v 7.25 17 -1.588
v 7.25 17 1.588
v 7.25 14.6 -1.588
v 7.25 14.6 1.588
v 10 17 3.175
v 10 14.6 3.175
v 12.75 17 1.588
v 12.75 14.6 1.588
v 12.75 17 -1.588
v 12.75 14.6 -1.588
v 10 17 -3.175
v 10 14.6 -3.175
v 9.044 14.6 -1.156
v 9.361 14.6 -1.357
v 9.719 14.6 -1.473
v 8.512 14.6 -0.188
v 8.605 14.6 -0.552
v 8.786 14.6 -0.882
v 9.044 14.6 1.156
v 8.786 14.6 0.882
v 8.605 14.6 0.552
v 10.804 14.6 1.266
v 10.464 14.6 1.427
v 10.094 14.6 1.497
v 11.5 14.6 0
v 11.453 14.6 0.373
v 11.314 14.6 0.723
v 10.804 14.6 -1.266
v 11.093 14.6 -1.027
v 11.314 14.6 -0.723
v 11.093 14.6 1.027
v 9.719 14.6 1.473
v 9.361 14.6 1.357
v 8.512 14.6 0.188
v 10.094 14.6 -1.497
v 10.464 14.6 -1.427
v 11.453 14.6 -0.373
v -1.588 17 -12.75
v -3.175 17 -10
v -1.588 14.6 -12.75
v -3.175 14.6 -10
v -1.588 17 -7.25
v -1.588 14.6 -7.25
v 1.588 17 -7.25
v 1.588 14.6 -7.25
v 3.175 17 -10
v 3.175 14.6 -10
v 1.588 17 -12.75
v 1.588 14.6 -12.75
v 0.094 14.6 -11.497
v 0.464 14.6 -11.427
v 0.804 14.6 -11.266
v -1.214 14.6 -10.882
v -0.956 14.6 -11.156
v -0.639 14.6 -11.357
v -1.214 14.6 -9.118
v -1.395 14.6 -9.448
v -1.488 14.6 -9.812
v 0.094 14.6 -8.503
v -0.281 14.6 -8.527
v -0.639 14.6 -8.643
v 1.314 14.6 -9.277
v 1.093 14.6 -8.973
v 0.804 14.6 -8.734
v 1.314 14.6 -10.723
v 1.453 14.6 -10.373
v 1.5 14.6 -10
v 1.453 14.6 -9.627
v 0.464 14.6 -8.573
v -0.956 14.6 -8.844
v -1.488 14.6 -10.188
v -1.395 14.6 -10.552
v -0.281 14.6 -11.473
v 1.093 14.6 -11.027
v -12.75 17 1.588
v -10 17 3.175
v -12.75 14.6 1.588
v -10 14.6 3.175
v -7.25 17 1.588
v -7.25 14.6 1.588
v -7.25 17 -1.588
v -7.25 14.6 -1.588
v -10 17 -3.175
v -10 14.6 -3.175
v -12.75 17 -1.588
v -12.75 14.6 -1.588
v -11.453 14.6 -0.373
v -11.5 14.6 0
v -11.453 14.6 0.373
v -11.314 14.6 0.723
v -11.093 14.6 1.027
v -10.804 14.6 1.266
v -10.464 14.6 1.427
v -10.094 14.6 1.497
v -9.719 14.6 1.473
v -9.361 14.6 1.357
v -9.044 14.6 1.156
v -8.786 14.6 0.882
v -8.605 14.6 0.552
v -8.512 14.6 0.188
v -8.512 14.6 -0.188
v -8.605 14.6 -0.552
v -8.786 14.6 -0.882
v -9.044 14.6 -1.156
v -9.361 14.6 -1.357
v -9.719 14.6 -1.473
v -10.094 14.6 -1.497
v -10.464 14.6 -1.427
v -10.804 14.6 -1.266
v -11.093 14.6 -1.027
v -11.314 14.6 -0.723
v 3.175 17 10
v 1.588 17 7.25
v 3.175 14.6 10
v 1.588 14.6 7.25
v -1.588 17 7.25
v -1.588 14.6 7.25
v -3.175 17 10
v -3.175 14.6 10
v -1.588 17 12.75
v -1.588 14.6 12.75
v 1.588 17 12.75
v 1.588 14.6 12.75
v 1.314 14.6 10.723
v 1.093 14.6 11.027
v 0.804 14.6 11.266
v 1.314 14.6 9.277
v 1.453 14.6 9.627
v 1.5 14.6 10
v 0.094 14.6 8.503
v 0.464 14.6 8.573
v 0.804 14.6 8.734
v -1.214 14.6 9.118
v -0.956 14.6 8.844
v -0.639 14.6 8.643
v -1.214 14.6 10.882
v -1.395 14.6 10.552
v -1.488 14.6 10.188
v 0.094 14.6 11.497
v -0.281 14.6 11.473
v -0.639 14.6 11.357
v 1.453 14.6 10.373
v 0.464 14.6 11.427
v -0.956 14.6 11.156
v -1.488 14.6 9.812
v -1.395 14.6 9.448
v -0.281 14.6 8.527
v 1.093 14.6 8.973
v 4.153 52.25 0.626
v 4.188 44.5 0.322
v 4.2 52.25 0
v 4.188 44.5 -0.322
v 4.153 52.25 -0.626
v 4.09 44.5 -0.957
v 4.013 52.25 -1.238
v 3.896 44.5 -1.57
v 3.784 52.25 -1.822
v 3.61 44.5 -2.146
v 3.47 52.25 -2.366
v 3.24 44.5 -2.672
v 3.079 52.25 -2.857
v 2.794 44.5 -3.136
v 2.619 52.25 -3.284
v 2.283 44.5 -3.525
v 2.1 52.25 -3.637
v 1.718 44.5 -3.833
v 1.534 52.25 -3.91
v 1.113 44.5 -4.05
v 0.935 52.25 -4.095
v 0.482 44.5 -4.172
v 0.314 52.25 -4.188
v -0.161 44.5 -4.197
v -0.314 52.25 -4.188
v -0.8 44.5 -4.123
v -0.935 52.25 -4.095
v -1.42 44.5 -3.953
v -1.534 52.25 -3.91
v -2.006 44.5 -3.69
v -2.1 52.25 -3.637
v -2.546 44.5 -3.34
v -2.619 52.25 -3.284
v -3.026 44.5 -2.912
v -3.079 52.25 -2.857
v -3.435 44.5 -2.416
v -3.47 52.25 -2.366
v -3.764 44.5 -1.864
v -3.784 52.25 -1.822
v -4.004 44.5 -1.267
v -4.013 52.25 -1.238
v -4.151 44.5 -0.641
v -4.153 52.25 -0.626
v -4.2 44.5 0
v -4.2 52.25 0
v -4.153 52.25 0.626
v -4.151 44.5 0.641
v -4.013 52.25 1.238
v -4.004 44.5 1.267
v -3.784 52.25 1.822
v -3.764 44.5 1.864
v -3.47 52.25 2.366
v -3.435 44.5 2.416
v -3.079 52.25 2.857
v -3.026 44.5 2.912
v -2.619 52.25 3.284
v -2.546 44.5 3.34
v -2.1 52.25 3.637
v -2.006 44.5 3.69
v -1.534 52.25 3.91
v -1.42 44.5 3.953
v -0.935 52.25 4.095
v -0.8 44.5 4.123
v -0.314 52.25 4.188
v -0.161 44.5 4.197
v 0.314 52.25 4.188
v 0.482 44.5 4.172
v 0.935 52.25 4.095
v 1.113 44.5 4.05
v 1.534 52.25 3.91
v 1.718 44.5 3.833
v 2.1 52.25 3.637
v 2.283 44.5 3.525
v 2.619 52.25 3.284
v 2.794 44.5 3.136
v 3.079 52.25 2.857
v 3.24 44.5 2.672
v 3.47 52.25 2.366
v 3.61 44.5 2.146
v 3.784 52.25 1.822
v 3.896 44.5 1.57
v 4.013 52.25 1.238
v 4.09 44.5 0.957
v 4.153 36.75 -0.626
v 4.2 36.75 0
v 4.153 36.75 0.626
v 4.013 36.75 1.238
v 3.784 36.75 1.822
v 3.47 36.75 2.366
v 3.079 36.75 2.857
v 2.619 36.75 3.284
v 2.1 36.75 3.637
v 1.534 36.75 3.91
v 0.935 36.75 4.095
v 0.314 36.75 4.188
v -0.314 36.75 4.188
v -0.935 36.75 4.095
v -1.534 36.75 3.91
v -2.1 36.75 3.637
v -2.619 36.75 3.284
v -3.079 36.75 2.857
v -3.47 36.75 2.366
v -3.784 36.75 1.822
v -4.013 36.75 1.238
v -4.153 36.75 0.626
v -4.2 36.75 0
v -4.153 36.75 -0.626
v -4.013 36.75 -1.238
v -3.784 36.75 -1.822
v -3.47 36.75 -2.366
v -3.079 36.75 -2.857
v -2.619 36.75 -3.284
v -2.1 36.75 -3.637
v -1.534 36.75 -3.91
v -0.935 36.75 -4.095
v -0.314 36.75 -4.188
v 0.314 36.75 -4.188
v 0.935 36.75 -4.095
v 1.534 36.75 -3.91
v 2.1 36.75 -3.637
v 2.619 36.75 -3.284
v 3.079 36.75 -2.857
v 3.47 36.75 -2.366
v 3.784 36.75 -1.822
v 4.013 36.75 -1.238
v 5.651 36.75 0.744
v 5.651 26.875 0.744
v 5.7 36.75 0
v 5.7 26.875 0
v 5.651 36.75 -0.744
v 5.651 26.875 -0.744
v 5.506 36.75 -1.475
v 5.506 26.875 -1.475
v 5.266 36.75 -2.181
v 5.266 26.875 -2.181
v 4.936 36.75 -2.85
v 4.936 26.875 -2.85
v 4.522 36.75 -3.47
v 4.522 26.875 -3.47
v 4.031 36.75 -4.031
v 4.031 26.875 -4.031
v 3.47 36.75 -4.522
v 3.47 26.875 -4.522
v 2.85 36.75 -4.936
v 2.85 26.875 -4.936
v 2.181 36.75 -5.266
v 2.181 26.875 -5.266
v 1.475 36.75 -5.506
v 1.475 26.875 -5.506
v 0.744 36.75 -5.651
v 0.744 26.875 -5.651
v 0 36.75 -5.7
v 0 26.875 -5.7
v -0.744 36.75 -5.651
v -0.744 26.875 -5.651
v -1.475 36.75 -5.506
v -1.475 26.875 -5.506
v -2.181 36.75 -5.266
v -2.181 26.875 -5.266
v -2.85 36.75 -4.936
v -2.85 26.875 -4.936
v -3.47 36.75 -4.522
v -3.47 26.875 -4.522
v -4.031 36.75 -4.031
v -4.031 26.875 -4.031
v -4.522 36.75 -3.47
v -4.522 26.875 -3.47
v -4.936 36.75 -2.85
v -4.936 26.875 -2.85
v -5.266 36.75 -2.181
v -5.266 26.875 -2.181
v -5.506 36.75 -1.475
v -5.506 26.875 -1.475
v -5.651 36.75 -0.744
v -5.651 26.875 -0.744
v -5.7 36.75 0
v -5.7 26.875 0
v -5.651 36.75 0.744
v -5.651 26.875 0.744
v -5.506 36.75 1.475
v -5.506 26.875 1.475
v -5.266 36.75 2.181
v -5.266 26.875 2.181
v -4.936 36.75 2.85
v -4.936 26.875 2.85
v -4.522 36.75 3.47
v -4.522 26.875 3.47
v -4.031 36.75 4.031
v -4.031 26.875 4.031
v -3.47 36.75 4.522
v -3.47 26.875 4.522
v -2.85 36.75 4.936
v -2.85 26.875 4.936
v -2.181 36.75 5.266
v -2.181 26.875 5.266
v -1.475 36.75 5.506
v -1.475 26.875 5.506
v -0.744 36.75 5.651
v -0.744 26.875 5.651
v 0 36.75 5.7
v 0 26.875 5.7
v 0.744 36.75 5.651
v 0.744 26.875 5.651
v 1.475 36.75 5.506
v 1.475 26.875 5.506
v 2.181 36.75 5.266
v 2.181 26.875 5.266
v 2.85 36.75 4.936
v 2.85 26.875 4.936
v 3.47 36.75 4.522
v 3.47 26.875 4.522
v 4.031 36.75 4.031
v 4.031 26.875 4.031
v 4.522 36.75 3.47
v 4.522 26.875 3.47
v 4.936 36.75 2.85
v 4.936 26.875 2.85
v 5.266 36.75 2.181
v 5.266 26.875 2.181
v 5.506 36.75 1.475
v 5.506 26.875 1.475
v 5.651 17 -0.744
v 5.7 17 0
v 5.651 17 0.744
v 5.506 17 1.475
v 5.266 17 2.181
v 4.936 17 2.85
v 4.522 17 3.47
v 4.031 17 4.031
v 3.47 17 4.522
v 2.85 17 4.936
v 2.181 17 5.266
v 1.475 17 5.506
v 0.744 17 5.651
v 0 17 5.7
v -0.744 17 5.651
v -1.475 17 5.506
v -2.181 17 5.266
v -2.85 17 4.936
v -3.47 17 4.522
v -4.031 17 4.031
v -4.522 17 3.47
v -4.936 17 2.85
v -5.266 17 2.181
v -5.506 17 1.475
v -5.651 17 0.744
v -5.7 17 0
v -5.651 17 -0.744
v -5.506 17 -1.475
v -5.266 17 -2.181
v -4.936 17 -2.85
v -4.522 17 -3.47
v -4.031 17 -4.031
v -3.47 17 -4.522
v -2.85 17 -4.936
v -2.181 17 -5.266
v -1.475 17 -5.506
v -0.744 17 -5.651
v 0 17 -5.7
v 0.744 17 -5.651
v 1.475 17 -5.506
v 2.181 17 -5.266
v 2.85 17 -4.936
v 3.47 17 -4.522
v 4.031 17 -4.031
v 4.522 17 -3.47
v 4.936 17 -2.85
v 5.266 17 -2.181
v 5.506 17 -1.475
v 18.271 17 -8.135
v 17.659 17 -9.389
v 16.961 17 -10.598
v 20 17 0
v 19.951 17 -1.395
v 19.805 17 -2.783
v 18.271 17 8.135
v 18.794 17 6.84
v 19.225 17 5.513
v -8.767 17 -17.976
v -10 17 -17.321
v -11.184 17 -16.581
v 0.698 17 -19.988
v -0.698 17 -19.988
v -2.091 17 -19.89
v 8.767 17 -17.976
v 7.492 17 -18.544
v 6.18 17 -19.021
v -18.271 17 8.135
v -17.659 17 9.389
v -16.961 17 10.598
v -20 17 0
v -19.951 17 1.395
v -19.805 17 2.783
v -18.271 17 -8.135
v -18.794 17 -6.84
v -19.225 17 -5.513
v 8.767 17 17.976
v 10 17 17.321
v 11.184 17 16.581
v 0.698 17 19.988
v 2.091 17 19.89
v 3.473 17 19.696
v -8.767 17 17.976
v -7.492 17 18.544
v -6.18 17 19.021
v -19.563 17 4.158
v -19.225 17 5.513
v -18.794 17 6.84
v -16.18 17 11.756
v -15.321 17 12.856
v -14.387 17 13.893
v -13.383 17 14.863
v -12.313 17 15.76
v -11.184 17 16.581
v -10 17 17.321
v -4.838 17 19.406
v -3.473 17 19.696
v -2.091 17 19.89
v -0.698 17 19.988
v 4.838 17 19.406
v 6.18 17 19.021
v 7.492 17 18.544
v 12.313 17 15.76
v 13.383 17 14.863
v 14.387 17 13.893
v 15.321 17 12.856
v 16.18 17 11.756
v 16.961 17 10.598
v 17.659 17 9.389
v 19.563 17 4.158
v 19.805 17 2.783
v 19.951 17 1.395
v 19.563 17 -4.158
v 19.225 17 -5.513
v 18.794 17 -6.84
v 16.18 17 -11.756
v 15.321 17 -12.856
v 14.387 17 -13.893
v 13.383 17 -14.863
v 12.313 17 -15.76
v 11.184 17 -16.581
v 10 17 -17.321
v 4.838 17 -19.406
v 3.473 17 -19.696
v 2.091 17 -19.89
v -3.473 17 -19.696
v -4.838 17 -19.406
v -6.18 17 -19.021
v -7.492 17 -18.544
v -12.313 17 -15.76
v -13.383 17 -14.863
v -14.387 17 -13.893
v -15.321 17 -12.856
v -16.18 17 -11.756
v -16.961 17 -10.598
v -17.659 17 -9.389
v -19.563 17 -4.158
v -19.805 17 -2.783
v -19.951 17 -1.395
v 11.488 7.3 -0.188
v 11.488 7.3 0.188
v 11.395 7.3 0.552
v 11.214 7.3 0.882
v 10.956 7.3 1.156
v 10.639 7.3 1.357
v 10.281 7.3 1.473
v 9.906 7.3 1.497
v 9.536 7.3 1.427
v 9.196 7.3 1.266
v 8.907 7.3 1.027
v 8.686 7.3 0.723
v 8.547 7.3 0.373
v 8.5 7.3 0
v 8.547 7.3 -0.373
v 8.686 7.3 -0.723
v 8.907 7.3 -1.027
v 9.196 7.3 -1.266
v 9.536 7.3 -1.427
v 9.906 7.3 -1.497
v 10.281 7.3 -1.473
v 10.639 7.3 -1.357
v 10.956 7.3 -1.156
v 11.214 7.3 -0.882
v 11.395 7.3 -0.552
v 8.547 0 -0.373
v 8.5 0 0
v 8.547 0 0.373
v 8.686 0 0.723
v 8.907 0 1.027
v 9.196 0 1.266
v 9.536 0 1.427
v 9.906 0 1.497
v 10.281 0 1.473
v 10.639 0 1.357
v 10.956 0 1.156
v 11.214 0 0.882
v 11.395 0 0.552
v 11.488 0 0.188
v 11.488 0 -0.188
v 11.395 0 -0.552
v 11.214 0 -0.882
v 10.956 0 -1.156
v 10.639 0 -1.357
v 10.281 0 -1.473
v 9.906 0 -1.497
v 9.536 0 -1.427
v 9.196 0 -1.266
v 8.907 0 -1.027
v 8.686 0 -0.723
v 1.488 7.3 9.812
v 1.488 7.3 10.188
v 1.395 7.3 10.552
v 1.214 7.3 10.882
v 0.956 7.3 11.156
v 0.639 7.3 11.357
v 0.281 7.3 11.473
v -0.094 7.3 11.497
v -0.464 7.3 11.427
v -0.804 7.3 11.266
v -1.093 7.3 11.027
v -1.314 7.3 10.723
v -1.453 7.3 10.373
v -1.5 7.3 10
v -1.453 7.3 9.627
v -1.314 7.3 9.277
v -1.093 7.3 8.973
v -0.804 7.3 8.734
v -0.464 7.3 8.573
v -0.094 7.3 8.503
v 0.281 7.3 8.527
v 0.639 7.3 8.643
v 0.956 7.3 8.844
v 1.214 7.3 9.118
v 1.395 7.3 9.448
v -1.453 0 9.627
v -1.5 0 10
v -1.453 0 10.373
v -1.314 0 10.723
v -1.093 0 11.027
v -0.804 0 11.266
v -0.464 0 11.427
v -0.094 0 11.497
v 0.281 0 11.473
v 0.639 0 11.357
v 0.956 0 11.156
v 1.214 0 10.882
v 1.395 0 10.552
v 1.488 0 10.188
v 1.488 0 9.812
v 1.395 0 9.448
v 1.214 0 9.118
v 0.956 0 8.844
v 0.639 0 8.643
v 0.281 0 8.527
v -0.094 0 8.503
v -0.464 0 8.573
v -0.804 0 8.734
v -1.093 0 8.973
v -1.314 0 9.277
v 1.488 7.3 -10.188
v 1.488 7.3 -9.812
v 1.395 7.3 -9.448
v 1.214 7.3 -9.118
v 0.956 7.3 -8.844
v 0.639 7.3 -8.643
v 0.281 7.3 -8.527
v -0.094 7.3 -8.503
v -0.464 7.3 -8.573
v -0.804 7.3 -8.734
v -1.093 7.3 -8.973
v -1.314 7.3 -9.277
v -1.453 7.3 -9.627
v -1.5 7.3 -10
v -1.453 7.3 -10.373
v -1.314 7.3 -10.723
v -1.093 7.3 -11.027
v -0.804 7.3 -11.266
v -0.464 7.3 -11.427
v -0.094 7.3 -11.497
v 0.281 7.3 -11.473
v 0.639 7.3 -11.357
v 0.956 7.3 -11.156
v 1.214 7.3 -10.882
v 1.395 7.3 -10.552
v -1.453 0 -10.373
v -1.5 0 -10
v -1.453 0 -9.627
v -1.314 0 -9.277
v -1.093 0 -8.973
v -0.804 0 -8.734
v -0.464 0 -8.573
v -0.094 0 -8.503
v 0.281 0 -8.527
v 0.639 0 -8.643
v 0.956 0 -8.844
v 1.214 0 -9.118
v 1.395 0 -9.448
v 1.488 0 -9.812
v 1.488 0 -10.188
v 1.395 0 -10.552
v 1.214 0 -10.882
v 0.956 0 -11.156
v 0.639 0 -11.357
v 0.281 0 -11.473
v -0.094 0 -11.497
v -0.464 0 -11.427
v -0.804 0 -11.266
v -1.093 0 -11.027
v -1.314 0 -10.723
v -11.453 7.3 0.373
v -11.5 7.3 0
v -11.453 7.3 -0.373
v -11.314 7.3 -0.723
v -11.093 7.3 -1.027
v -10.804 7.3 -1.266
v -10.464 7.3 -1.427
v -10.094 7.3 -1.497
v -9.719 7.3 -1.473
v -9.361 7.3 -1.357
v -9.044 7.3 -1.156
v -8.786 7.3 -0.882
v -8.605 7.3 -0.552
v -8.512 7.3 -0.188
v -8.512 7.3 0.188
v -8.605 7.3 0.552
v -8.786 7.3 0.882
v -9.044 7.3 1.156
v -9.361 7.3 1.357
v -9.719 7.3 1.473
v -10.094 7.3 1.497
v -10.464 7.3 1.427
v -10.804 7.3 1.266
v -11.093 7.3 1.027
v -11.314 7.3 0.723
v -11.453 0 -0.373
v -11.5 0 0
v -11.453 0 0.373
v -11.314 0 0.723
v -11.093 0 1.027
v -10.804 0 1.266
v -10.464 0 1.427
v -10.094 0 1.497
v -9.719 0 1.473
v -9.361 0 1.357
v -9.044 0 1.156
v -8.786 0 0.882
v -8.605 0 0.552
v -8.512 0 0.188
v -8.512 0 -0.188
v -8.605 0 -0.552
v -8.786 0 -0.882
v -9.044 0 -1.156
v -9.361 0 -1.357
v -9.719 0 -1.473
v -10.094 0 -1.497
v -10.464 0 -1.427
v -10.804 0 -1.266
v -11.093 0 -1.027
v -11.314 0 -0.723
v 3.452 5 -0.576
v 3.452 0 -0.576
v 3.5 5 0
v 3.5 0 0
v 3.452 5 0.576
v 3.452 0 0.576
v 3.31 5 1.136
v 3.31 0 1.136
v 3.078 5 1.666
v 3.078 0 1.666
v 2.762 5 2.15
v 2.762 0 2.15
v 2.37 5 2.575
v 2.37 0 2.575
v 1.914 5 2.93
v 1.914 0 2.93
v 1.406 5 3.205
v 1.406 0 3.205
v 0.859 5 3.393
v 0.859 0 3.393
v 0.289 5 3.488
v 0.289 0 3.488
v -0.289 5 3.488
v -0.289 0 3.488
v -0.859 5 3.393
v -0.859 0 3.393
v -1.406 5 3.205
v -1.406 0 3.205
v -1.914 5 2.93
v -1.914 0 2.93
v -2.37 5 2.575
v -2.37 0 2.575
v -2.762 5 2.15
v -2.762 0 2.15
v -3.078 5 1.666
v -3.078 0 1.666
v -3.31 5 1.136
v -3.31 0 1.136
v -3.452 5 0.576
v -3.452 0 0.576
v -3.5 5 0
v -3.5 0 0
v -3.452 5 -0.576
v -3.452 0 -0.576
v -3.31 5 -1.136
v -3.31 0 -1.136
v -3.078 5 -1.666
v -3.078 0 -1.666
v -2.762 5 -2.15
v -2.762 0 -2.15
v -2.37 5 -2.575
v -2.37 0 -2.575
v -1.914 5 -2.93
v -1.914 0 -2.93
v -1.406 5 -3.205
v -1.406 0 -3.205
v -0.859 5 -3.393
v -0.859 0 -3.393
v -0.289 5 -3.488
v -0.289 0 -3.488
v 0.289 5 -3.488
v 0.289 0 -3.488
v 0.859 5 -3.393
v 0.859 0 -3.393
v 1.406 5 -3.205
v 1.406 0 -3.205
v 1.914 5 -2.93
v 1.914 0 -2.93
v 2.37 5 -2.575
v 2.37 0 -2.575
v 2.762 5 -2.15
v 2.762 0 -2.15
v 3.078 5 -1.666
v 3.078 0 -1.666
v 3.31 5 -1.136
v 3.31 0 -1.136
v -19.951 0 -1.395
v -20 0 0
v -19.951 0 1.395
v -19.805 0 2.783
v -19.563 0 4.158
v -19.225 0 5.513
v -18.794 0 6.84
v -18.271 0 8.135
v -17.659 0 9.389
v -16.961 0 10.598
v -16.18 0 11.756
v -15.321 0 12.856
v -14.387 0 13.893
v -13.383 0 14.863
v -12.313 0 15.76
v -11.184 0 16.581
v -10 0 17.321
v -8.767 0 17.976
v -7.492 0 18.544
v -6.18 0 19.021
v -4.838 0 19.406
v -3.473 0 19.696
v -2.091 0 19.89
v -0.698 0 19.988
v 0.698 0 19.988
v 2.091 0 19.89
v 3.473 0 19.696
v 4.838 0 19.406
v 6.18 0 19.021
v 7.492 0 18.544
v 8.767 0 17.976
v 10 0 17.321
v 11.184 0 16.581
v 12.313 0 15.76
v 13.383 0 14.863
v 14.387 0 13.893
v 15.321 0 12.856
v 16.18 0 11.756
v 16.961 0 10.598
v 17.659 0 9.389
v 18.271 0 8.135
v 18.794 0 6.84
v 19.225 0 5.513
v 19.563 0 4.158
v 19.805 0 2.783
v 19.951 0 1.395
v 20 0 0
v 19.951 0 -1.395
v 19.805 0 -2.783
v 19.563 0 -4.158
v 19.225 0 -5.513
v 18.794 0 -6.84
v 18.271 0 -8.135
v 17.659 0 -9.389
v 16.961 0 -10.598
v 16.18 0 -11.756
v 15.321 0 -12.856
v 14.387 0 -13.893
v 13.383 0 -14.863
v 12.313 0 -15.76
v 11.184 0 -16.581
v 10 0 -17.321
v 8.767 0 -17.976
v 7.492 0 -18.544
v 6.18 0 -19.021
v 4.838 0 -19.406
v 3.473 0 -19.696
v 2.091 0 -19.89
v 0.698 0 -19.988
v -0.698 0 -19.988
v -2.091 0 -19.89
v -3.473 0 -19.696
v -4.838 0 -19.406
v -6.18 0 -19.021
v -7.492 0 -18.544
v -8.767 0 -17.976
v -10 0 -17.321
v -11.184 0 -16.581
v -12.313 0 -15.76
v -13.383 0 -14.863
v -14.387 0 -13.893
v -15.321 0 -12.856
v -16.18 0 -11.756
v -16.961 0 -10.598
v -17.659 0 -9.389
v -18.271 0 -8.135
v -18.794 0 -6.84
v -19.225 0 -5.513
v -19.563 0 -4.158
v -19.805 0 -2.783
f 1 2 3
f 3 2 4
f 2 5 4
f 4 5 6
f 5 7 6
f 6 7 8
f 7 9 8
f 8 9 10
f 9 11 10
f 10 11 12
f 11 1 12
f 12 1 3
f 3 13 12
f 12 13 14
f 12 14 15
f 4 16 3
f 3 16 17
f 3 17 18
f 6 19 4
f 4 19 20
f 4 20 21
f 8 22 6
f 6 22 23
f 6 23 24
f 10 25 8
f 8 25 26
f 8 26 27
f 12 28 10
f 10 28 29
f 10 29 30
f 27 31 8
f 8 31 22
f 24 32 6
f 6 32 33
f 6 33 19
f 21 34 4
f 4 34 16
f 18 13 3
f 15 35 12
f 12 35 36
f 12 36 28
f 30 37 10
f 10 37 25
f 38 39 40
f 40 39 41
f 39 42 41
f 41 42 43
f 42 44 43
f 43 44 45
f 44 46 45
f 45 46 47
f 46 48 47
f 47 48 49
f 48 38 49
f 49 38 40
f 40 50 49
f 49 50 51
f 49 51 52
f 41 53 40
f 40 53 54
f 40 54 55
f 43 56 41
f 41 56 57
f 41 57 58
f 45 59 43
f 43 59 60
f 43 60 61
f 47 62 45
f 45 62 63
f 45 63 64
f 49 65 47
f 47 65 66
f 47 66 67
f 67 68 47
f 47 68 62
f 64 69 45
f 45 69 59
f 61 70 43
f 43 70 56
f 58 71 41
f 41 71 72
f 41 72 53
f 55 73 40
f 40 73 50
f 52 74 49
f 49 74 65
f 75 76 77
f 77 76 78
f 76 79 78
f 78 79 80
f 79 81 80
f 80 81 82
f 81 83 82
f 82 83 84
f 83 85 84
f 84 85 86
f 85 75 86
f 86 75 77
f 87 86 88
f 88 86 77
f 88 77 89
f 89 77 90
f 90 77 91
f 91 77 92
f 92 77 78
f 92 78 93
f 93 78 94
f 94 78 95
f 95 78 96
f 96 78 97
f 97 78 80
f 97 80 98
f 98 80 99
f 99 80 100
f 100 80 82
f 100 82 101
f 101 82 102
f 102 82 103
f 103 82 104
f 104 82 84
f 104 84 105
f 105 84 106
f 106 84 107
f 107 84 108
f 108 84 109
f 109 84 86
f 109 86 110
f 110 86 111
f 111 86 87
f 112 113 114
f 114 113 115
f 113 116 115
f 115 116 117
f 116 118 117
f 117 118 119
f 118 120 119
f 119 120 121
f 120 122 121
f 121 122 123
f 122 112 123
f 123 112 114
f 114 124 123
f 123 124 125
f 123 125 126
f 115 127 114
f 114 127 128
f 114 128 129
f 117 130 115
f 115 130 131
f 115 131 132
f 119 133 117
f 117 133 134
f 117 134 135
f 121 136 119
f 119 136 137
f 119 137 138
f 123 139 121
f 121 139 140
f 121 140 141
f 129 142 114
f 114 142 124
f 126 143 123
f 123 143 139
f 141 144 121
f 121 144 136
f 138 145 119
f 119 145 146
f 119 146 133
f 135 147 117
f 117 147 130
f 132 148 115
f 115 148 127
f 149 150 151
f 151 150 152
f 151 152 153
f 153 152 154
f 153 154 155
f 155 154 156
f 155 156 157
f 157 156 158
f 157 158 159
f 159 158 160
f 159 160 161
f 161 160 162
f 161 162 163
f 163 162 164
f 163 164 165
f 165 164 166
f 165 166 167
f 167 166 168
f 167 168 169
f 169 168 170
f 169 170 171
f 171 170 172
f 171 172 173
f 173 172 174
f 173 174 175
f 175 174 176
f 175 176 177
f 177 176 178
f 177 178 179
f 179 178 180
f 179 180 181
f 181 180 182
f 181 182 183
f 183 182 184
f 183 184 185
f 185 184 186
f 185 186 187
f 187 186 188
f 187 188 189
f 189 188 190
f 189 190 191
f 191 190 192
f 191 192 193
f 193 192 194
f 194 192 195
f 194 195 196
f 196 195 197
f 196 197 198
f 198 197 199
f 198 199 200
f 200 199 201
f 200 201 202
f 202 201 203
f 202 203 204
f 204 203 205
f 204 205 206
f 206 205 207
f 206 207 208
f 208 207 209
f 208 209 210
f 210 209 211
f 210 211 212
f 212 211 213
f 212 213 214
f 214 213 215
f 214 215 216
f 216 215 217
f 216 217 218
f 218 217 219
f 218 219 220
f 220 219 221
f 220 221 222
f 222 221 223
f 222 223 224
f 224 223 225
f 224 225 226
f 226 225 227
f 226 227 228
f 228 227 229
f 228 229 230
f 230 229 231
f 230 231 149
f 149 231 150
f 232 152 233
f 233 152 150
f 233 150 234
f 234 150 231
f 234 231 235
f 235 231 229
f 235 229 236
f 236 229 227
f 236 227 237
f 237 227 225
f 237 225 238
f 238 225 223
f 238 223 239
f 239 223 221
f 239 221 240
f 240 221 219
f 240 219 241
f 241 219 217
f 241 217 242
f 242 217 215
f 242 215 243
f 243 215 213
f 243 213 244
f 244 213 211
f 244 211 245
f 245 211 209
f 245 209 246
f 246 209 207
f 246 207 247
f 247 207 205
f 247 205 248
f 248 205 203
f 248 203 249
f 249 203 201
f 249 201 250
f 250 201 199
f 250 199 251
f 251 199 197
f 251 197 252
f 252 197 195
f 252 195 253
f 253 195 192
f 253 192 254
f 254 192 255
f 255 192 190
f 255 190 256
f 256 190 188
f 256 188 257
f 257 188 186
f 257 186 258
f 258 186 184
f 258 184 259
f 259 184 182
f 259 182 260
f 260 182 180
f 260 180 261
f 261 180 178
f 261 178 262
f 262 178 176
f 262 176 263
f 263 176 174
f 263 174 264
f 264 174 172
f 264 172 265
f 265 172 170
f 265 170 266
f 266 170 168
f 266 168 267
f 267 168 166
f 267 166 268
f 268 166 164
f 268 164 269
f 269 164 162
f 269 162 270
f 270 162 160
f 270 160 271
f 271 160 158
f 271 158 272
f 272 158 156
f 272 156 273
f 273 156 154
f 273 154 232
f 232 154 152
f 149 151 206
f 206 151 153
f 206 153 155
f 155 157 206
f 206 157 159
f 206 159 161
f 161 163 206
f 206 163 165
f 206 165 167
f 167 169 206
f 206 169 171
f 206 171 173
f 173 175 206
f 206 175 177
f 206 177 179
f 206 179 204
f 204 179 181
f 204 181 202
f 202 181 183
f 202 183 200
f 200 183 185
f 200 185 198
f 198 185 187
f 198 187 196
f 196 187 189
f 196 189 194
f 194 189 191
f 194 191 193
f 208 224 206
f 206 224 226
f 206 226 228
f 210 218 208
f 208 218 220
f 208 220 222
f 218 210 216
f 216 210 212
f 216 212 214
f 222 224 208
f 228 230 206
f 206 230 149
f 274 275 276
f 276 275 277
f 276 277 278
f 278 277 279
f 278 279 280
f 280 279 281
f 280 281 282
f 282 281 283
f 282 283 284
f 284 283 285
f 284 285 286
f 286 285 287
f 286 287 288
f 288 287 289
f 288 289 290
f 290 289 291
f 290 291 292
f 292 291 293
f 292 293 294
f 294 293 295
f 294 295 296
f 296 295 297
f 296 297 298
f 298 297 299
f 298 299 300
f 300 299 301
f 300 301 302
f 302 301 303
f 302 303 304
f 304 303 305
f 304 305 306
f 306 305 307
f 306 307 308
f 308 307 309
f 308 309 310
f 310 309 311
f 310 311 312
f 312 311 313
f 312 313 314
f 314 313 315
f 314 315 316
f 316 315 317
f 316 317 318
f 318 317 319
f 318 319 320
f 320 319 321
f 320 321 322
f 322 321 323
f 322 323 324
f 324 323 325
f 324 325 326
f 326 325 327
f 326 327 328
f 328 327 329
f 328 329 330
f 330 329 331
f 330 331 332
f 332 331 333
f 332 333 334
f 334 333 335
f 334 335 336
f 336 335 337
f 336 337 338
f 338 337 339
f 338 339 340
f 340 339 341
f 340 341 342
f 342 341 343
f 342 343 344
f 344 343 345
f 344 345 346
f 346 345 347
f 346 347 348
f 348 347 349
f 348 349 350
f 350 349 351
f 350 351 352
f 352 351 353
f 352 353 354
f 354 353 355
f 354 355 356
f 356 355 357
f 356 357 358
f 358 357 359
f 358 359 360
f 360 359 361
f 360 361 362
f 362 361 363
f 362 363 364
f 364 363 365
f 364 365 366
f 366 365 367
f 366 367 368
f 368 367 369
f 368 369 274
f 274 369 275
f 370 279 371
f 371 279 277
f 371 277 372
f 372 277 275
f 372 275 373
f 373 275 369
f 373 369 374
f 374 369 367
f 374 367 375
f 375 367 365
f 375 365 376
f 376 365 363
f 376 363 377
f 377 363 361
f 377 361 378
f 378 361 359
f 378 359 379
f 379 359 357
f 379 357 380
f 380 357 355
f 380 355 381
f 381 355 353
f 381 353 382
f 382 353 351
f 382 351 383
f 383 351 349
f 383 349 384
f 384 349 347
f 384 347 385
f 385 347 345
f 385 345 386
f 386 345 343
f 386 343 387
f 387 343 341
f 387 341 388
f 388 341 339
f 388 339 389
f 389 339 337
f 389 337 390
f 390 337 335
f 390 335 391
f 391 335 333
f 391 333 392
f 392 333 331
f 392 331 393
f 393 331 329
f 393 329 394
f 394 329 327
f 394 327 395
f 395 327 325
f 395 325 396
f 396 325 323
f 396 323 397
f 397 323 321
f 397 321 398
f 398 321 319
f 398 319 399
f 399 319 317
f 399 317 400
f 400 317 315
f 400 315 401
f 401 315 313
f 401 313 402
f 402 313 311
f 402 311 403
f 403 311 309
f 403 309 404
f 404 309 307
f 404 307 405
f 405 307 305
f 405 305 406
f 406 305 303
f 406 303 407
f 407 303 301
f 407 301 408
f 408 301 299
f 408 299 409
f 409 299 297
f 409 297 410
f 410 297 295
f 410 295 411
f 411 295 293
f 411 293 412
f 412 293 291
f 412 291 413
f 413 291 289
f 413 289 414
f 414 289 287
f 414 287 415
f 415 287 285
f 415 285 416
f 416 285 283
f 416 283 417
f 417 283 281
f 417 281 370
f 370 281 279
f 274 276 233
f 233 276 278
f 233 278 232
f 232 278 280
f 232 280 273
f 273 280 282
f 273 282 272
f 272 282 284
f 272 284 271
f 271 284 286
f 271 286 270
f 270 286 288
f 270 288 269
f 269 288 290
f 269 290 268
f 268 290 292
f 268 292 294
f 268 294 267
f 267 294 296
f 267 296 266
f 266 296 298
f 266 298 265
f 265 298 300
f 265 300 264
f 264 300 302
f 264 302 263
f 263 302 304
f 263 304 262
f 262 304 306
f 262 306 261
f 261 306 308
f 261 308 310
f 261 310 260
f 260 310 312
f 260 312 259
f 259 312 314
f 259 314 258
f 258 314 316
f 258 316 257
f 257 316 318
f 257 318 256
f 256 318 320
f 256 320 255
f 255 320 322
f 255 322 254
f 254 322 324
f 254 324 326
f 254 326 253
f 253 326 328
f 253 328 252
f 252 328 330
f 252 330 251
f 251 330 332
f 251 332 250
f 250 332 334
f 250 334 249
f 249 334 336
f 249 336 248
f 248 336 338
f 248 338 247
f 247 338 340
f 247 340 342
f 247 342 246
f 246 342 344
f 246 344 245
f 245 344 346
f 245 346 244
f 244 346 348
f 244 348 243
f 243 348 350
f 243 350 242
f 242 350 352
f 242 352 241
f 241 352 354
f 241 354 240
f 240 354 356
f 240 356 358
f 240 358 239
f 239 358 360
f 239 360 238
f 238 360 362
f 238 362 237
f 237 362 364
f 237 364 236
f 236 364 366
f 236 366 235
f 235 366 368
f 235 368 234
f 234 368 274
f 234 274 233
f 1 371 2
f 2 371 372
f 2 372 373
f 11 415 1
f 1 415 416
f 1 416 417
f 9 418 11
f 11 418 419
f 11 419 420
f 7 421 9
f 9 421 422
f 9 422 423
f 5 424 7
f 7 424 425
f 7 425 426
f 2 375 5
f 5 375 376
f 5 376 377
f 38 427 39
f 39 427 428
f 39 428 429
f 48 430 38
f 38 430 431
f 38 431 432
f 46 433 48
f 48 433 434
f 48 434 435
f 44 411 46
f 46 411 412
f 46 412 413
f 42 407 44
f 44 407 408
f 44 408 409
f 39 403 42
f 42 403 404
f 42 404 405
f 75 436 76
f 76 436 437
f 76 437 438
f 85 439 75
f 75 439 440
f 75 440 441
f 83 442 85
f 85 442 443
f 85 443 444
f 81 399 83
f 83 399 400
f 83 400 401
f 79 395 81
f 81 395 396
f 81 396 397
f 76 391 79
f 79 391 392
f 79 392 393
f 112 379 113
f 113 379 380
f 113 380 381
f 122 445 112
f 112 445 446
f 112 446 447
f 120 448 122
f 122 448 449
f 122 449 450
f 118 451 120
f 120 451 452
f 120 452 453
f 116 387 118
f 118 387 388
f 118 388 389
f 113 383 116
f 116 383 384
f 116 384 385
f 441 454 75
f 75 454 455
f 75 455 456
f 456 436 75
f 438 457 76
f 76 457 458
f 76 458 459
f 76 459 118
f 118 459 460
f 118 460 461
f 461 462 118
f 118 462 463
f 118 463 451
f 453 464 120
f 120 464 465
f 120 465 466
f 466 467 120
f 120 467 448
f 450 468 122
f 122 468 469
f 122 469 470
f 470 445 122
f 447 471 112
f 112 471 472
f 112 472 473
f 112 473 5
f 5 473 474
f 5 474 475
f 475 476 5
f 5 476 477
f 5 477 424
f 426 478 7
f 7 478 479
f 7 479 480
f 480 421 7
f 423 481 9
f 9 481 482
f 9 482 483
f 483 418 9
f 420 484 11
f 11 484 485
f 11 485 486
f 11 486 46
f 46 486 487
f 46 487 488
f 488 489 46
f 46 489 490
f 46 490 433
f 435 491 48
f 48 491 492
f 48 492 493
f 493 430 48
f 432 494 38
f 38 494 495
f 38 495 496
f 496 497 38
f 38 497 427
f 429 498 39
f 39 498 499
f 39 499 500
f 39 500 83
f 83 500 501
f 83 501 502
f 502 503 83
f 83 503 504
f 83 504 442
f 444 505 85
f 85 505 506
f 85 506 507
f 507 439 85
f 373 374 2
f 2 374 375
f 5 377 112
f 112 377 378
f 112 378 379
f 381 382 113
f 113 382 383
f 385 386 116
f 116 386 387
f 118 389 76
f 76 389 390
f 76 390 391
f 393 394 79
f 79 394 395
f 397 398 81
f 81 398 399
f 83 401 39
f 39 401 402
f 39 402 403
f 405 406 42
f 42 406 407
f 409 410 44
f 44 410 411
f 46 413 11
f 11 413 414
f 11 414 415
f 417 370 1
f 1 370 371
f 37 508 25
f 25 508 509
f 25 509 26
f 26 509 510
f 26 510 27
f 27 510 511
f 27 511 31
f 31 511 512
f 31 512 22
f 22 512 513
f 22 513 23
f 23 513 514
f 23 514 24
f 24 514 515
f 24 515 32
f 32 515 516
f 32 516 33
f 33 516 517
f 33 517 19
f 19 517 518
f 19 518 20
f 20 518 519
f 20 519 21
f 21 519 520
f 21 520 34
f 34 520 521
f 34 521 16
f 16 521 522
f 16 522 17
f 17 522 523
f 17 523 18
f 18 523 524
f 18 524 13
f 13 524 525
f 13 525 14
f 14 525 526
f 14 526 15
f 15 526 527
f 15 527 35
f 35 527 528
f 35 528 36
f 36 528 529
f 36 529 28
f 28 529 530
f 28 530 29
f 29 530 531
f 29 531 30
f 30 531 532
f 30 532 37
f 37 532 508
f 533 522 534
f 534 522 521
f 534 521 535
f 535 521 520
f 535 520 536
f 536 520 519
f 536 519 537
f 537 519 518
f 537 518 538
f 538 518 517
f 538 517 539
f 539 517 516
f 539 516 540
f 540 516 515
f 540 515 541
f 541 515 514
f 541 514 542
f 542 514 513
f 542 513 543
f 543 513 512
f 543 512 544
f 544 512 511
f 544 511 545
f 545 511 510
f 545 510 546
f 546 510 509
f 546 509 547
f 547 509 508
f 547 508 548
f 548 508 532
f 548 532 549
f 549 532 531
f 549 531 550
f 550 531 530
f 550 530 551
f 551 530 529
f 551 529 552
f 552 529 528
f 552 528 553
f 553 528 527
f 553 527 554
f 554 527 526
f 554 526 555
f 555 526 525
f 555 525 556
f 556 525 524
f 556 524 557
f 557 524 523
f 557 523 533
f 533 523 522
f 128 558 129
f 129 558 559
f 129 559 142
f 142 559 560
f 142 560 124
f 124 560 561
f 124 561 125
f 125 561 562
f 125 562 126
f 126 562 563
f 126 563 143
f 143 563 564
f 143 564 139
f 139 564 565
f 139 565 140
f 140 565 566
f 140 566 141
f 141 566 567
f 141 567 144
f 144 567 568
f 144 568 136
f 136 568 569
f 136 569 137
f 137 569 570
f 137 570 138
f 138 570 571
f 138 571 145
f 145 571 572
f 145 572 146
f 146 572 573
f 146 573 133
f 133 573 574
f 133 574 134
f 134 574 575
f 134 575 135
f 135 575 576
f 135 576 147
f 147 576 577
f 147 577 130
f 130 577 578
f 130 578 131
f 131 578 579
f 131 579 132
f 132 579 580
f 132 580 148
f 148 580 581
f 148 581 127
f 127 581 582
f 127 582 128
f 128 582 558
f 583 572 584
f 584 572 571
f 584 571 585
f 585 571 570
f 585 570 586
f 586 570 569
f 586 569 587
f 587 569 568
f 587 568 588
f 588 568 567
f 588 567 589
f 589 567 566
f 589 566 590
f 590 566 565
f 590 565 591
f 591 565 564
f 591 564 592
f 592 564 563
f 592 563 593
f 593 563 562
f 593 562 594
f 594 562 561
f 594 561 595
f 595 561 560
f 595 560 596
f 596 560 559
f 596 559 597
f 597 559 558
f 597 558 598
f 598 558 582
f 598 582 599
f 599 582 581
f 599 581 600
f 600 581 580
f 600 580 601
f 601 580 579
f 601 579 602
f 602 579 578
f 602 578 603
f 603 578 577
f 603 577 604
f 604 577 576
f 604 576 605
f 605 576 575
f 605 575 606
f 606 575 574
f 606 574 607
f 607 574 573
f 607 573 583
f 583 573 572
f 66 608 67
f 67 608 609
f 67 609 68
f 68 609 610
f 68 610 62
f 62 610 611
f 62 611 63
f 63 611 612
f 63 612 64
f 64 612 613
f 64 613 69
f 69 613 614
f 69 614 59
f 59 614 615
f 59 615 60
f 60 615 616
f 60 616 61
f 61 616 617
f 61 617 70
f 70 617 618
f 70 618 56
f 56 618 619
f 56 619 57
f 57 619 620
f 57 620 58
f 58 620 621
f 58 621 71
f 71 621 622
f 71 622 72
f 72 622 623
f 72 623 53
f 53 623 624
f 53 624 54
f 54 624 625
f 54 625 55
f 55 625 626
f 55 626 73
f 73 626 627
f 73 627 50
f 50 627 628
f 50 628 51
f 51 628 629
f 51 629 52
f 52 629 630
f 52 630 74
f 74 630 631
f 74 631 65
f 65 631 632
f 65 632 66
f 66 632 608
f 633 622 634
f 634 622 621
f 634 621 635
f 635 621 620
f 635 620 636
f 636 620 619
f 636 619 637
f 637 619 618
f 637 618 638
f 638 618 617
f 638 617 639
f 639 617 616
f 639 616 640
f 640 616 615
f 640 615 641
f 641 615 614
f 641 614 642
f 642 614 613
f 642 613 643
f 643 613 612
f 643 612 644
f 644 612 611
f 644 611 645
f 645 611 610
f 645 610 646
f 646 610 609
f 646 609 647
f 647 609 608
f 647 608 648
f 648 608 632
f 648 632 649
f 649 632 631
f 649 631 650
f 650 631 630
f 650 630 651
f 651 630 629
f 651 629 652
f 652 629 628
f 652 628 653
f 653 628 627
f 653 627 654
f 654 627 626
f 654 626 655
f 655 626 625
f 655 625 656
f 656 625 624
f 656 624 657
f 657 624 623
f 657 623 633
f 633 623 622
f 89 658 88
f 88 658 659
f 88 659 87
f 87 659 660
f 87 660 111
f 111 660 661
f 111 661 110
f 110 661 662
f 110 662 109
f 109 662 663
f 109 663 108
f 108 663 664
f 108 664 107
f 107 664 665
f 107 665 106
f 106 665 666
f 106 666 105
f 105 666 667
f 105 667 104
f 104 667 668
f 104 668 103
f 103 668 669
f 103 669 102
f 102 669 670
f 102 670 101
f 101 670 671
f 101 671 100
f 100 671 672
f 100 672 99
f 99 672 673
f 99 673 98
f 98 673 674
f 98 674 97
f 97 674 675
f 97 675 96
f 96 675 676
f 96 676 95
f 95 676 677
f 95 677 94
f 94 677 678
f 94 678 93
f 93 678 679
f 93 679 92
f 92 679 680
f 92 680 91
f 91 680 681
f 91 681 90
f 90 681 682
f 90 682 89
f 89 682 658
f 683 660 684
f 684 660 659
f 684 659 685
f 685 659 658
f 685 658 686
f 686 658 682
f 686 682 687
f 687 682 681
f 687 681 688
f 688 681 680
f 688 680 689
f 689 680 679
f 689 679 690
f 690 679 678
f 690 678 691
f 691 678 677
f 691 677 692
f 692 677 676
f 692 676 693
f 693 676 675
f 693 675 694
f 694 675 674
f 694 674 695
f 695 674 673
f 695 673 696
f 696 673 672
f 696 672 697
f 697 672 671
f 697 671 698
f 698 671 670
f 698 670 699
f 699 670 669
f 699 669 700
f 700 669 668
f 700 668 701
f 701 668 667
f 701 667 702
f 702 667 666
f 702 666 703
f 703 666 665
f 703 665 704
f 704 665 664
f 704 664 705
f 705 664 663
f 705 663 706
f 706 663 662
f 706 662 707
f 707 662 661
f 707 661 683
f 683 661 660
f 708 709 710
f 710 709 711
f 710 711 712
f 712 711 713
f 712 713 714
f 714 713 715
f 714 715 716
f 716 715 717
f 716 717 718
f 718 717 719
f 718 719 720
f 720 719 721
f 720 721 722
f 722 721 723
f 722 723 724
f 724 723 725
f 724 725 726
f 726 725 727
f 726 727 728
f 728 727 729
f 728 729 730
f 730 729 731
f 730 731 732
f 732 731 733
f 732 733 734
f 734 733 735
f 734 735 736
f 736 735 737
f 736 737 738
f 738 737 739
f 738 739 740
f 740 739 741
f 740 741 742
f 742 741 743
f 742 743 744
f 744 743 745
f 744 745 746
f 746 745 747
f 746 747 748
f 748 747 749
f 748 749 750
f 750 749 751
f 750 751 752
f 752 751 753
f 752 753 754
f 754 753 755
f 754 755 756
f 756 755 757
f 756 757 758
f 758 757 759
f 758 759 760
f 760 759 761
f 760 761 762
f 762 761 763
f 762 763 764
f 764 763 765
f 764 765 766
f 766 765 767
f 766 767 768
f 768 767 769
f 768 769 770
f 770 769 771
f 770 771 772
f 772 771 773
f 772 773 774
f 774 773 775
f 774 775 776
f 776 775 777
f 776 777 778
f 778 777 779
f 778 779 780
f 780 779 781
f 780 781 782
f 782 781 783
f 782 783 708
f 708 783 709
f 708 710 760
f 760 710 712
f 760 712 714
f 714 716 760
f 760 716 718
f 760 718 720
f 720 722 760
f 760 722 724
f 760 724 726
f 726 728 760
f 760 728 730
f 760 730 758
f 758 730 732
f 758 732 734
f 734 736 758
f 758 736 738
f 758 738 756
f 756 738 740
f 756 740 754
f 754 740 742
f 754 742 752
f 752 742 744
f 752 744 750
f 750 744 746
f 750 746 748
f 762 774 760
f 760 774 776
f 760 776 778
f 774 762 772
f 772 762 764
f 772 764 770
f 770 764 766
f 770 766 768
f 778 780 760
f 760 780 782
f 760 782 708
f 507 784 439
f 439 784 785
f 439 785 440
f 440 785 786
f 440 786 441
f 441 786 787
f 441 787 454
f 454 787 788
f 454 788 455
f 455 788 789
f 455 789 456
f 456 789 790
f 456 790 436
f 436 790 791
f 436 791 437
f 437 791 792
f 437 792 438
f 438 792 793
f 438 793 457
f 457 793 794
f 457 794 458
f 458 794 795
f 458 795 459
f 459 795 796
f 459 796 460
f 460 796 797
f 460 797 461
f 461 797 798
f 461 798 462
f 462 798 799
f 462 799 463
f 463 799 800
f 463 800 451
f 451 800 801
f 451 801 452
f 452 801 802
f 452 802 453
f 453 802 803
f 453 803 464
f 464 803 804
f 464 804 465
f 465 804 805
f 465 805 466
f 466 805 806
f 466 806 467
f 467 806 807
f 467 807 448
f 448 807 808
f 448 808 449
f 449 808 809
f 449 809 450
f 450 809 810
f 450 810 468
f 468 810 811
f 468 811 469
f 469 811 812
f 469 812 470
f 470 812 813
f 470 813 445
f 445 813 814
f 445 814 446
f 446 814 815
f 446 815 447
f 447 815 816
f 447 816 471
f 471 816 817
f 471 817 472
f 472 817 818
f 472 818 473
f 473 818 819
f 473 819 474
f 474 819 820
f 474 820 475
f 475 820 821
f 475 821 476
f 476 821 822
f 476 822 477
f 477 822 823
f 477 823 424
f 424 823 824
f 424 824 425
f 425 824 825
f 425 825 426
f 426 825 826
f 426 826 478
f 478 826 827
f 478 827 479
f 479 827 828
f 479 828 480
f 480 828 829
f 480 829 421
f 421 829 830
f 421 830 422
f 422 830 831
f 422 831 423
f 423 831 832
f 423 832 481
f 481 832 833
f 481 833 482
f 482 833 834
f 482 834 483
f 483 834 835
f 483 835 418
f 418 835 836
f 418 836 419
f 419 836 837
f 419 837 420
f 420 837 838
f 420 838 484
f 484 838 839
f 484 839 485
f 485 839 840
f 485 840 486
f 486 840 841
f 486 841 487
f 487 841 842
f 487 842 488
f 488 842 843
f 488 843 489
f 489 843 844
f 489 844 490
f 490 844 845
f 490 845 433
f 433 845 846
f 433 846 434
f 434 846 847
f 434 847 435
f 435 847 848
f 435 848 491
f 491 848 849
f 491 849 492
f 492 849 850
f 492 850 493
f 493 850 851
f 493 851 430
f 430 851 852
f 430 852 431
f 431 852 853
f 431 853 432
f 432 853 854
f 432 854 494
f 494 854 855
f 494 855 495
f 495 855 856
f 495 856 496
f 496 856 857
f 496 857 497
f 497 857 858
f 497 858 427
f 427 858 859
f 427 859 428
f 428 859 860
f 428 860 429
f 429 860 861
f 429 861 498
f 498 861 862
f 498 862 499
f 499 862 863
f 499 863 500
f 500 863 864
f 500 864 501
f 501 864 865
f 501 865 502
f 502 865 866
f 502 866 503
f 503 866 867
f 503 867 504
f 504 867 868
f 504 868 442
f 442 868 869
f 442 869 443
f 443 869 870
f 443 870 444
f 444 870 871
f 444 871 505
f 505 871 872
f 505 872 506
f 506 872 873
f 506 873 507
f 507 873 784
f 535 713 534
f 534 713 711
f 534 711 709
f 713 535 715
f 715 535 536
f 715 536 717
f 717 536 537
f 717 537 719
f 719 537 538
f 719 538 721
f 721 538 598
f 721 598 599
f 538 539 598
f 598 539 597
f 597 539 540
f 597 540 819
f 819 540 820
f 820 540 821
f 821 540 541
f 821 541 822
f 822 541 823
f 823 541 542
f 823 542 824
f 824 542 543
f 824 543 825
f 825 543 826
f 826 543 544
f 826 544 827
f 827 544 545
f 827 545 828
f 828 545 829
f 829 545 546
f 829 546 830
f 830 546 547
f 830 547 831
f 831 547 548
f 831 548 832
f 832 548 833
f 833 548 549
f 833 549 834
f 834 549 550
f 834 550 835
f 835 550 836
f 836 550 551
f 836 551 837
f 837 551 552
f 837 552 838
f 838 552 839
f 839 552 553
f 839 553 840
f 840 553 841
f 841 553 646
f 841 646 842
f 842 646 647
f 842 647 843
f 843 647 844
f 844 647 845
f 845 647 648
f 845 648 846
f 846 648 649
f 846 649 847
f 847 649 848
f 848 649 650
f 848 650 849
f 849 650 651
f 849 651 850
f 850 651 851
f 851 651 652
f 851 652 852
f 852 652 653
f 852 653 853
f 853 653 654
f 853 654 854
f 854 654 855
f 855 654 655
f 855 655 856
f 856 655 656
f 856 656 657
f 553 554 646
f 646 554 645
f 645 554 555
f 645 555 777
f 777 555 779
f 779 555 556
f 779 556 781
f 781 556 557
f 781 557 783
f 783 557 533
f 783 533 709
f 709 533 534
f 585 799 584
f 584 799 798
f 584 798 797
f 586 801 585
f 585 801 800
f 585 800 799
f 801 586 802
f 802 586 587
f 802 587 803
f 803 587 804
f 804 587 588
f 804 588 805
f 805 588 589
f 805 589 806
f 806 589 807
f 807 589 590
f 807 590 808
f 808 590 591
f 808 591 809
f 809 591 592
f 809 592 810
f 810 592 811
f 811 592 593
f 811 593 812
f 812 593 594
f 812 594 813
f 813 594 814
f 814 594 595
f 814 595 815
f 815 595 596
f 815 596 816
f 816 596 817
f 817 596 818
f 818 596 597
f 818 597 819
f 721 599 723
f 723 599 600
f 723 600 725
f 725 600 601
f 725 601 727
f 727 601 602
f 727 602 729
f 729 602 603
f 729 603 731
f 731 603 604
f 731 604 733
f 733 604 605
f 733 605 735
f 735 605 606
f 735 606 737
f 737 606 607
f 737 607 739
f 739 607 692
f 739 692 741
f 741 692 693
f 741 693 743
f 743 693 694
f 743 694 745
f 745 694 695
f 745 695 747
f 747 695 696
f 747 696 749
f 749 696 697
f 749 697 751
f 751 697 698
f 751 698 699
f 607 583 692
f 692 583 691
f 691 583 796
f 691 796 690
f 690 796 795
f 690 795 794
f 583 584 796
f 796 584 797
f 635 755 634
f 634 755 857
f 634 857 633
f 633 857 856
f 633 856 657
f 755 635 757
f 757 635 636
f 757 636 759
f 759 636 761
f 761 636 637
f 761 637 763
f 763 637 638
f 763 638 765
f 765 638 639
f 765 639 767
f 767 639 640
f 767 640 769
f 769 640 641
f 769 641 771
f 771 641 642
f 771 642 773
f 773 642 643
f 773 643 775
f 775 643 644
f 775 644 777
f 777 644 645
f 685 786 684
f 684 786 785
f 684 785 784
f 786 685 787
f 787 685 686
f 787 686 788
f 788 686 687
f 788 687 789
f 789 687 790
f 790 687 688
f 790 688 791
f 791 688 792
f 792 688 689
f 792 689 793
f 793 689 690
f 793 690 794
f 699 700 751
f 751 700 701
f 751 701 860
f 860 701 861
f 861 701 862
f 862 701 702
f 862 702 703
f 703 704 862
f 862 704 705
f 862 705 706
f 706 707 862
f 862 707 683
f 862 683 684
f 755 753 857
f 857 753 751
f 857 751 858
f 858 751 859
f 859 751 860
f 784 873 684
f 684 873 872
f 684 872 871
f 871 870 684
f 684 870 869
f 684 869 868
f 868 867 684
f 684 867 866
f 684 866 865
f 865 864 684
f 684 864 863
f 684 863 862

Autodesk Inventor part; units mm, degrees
ref_plane "YZ Plane" through (0, 0, 0) normal (1, 0, 0) x (0, 1, 0)
ref_plane "XZ Plane" through (0, 0, 0) normal (0, 1, 0) x (-1, 0, 0)
ref_plane "XY Plane" through (0, 0, 0) normal (0, 0, 1) x (1, 0, 0)
sketch "Sketch1" plane through (0, 0, 0) normal (0, 1, 0) x (-1, 0, 0)
  circle A0 centre (0, 0) radius 20
  dimension "d0" = 40
extrude "Extrusion1" add sketch "Sketch1" along normal blind 17
sketch "Sketch2" plane through (0, 17, 0) normal (0, 1, 0) x (1, 0, 0)
  circle A0 centre (-10, 0) radius 1.5
  circle A1 centre (10, 0) radius 1.5
  circle A2 centre (0, 10) radius 1.5
  circle A3 centre (0, -10) radius 1.5
  circle A4 centre (0, 0) radius 4.2
  circle A5 centre (0, 0) radius 5.7
  line L0 (-10, 3.1754) -> (-7.25, 1.5877)
  line L1 (-7.25, 1.5877) -> (-7.25, -1.5877)
  line L2 (-7.25, -1.5877) -> (-10, -3.1754)
  line L3 (-10, -3.1754) -> (-12.75, -1.5877)
  line L4 (-12.75, -1.5877) -> (-12.75, 1.5877)
  line L5 (-12.75, 1.5877) -> (-10, 3.1754)
  line L6 (10, 3.1754) -> (7.25, 1.5877)
  line L7 (7.25, 1.5877) -> (7.25, -1.5877)
  line L8 (7.25, -1.5877) -> (10, -3.1754)
  line L9 (10, -3.1754) -> (12.75, -1.5877)
  line L10 (12.75, -1.5877) -> (12.75, 1.5877)
  line L11 (12.75, 1.5877) -> (10, 3.1754)
  line L12 (1.5877, 12.75) -> (3.1754, 10)
  line L13 (-1.5877, 12.75) -> (1.5877, 12.75)
  line L14 (-3.1754, 10) -> (-1.5877, 12.75)
  line L15 (-1.5877, 7.25) -> (-3.1754, 10)
  line L16 (1.5877, 7.25) -> (-1.5877, 7.25)
  line L17 (3.1754, 10) -> (1.5877, 7.25)
  line L18 (3.1754, -10) -> (1.5877, -7.25)
  line L19 (1.5877, -12.75) -> (3.1754, -10)
  line L20 (-1.5877, -12.75) -> (1.5877, -12.75)
  line L21 (-3.1754, -10) -> (-1.5877, -12.75)
  line L22 (-1.5877, -7.25) -> (-3.1754, -10)
  line L23 (1.5877, -7.25) -> (-1.5877, -7.25)
  dimension "d6" = 3
  dimension "d13" = 8.4
  dimension "d16" = 1.5
sketch "Sketch3" plane through (0, 0, 0) normal (0, -1, 0) x (1, 0, 0)
  circle A0 centre (0, 0) radius 3.5
  dimension "d8" = 7
extrude "Extrusion2" cut sketch "Sketch3" against normal blind 5
extrude "Extrusion4" cut sketch "Sketch2" against normal through all contours A0 | A1 | A2 | A3
extrude "Extrusion5" add sketch "Sketch2" along normal blind 19.75 contours A5
extrude "Extrusion6" add sketch "Sketch2" along normal blind 35.25 contours A4
extrude "Extrusion7" cut sketch "Sketch2" against normal blind 2.4 contours A0 | L0 L1 L2 L3 L4 L5 | L11 L10 L9 L8 L7 L6 | L12 L17 L16 L15 L14 L13 | L19 L20 L21 L22 L23 L18
properties part number "Encoder_coupler_3DPrint"
